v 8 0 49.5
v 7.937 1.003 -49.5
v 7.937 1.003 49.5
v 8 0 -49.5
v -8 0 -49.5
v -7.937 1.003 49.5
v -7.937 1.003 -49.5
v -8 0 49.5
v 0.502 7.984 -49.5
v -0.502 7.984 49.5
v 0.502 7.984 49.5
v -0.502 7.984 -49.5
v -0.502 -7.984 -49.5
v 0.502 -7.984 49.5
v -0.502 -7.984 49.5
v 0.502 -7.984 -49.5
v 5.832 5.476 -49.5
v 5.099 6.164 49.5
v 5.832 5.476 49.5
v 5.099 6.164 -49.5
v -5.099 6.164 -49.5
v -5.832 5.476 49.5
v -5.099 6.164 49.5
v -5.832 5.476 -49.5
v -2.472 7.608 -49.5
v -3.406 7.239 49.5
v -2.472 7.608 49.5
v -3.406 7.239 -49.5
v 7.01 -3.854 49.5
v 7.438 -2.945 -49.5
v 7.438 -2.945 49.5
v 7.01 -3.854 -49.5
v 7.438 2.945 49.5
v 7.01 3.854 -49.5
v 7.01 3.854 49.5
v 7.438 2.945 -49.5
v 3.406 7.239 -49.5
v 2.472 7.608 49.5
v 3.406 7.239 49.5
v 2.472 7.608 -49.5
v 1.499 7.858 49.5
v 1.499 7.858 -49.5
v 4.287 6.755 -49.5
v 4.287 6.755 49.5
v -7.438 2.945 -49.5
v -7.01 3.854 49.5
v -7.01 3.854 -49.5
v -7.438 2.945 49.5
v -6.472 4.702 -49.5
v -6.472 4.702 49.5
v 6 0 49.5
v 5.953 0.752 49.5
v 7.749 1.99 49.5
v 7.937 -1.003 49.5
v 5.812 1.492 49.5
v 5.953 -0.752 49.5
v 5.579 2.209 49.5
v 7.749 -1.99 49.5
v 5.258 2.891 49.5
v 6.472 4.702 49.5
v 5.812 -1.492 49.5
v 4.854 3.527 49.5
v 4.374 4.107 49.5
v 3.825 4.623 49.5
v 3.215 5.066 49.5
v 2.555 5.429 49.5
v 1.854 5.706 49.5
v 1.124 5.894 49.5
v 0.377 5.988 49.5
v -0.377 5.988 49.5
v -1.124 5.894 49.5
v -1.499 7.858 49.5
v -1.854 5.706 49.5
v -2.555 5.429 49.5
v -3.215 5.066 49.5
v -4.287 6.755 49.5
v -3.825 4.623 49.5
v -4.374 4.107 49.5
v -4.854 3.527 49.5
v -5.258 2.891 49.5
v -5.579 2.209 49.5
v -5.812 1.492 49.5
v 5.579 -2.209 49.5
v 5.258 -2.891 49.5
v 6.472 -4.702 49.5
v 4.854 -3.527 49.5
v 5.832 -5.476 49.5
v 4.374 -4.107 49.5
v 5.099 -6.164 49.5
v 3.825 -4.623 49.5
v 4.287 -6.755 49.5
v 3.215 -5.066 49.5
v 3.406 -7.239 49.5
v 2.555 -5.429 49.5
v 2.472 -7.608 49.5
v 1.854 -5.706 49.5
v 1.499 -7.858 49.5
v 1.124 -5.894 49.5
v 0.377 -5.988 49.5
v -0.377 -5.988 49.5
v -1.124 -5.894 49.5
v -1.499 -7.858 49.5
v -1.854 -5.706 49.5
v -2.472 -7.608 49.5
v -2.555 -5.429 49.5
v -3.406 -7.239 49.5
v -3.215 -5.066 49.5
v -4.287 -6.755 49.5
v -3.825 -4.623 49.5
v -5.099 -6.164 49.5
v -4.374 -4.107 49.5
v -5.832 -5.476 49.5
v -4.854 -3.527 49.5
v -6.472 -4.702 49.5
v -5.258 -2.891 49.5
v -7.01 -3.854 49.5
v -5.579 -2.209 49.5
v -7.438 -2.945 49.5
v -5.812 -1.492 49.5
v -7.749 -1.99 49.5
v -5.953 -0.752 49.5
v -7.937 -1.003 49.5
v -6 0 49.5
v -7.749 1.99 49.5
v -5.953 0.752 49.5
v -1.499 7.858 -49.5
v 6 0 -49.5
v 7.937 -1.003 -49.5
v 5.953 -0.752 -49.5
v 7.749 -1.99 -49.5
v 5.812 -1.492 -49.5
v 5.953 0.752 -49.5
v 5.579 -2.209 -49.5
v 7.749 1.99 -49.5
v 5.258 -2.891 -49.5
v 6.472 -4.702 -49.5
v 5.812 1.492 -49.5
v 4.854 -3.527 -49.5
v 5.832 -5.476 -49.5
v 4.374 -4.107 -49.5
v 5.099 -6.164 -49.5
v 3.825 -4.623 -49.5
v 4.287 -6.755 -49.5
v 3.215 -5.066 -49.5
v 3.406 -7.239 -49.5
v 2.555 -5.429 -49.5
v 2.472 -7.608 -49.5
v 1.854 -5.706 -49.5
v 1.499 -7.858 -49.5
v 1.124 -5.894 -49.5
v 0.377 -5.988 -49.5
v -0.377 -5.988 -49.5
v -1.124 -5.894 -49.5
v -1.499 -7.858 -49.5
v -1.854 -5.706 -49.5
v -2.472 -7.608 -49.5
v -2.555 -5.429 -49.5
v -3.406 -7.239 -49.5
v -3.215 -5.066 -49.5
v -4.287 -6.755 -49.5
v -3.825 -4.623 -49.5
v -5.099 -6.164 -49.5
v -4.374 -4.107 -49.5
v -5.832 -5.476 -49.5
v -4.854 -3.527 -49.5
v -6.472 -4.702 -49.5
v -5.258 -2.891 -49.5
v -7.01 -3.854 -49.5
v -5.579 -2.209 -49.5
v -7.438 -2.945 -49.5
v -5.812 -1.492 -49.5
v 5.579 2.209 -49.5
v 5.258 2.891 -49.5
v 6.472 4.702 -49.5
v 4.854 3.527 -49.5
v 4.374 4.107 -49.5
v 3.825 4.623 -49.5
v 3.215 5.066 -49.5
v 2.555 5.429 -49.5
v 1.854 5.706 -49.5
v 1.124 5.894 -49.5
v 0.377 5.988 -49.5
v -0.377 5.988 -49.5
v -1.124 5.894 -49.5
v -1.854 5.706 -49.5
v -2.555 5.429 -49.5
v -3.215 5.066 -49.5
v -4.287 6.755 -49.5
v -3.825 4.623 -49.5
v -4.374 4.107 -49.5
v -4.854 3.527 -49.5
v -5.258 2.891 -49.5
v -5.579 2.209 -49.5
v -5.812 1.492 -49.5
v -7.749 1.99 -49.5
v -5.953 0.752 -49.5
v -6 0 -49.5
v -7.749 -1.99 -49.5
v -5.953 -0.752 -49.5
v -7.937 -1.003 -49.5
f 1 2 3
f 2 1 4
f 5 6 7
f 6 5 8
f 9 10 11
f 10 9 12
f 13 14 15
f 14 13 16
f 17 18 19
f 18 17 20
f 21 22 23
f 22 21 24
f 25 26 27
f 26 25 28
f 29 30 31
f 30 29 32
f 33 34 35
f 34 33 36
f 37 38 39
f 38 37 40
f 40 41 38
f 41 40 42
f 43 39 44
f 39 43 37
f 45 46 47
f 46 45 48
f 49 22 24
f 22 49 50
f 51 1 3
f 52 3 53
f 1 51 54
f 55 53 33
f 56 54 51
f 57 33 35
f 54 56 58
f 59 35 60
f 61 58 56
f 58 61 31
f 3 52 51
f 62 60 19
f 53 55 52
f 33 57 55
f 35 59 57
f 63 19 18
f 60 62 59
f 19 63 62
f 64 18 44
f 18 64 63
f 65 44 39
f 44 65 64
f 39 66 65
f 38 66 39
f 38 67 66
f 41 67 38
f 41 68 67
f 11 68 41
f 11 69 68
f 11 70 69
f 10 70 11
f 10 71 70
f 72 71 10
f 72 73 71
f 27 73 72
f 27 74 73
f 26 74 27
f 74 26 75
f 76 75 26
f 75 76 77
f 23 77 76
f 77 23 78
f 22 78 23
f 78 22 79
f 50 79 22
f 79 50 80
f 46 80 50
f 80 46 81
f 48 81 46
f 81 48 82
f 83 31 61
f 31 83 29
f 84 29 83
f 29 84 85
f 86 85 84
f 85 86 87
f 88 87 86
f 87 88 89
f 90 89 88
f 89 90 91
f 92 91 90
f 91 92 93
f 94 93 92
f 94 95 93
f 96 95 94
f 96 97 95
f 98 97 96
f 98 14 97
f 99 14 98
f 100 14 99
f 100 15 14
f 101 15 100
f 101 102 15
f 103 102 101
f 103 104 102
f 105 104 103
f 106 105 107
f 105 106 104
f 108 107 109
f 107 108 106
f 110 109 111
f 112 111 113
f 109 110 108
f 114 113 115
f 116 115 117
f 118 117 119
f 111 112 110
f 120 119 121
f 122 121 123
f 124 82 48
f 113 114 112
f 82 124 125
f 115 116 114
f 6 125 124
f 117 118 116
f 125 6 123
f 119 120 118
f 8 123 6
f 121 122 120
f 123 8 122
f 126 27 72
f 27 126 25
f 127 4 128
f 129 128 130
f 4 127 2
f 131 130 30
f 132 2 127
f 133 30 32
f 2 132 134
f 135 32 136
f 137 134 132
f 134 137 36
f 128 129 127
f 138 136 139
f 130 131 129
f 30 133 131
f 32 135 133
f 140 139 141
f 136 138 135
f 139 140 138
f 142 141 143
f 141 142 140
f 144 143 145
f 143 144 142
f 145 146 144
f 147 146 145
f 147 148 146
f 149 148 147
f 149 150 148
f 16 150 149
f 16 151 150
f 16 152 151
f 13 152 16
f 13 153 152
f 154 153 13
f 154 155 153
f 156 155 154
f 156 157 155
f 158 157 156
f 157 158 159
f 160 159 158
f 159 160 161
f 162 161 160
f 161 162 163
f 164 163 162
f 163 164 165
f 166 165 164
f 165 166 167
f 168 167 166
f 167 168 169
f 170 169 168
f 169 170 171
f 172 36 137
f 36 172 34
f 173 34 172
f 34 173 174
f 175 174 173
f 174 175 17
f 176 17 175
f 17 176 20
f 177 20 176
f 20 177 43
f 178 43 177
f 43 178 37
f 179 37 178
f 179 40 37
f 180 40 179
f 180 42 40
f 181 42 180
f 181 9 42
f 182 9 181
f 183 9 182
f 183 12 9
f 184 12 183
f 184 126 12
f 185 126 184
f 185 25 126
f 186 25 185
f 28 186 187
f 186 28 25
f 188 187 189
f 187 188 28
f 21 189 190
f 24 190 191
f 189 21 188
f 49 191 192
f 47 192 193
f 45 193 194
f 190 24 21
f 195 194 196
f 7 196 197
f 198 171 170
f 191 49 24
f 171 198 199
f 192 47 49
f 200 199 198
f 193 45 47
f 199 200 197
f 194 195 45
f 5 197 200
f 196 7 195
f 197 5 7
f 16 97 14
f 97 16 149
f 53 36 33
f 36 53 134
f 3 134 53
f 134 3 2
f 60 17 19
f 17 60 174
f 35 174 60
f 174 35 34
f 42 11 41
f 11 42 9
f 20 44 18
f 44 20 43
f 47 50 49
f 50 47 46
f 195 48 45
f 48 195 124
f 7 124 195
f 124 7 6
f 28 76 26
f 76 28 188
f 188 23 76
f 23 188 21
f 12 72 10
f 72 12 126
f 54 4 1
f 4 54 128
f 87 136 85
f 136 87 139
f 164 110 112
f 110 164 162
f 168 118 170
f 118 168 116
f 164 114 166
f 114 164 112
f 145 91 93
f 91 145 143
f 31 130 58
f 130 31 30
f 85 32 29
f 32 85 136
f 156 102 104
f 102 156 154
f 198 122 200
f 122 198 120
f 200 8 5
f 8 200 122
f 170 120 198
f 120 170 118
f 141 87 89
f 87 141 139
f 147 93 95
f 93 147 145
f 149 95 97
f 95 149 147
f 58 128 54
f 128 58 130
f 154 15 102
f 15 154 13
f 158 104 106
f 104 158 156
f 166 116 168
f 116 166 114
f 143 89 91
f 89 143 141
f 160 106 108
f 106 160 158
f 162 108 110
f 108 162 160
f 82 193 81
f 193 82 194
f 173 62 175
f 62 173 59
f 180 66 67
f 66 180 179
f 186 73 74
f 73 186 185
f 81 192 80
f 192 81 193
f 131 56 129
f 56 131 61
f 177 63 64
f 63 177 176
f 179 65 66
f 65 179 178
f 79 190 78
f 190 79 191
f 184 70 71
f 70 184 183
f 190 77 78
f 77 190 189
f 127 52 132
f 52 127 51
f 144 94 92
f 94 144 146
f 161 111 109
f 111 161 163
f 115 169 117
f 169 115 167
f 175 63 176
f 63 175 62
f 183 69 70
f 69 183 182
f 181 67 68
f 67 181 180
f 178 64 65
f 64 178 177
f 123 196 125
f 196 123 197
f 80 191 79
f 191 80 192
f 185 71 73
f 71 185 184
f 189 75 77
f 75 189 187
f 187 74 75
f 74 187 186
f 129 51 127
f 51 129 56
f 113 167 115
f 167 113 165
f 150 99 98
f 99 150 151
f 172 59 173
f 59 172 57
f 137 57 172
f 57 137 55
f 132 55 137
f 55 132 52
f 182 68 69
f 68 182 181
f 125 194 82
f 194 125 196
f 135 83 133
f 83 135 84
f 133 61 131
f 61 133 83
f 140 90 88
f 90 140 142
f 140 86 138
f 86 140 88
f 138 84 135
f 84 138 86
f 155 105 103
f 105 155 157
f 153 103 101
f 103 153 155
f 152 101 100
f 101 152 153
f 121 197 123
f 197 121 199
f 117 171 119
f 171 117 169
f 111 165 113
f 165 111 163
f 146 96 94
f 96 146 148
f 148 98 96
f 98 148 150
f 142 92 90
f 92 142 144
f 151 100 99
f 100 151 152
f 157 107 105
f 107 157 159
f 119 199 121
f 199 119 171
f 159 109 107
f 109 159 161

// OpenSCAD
$fn = 50;


difference() {
	union() {
		translate(v = [0, 0, -49.5000000000]) {
			cylinder(h = 99, r = 8.0000000000);
		}
	}
	union() {
		translate(v = [0, 0, -100.0000000000]) {
			cylinder(h = 200, r = 6);
		}
	}
}
